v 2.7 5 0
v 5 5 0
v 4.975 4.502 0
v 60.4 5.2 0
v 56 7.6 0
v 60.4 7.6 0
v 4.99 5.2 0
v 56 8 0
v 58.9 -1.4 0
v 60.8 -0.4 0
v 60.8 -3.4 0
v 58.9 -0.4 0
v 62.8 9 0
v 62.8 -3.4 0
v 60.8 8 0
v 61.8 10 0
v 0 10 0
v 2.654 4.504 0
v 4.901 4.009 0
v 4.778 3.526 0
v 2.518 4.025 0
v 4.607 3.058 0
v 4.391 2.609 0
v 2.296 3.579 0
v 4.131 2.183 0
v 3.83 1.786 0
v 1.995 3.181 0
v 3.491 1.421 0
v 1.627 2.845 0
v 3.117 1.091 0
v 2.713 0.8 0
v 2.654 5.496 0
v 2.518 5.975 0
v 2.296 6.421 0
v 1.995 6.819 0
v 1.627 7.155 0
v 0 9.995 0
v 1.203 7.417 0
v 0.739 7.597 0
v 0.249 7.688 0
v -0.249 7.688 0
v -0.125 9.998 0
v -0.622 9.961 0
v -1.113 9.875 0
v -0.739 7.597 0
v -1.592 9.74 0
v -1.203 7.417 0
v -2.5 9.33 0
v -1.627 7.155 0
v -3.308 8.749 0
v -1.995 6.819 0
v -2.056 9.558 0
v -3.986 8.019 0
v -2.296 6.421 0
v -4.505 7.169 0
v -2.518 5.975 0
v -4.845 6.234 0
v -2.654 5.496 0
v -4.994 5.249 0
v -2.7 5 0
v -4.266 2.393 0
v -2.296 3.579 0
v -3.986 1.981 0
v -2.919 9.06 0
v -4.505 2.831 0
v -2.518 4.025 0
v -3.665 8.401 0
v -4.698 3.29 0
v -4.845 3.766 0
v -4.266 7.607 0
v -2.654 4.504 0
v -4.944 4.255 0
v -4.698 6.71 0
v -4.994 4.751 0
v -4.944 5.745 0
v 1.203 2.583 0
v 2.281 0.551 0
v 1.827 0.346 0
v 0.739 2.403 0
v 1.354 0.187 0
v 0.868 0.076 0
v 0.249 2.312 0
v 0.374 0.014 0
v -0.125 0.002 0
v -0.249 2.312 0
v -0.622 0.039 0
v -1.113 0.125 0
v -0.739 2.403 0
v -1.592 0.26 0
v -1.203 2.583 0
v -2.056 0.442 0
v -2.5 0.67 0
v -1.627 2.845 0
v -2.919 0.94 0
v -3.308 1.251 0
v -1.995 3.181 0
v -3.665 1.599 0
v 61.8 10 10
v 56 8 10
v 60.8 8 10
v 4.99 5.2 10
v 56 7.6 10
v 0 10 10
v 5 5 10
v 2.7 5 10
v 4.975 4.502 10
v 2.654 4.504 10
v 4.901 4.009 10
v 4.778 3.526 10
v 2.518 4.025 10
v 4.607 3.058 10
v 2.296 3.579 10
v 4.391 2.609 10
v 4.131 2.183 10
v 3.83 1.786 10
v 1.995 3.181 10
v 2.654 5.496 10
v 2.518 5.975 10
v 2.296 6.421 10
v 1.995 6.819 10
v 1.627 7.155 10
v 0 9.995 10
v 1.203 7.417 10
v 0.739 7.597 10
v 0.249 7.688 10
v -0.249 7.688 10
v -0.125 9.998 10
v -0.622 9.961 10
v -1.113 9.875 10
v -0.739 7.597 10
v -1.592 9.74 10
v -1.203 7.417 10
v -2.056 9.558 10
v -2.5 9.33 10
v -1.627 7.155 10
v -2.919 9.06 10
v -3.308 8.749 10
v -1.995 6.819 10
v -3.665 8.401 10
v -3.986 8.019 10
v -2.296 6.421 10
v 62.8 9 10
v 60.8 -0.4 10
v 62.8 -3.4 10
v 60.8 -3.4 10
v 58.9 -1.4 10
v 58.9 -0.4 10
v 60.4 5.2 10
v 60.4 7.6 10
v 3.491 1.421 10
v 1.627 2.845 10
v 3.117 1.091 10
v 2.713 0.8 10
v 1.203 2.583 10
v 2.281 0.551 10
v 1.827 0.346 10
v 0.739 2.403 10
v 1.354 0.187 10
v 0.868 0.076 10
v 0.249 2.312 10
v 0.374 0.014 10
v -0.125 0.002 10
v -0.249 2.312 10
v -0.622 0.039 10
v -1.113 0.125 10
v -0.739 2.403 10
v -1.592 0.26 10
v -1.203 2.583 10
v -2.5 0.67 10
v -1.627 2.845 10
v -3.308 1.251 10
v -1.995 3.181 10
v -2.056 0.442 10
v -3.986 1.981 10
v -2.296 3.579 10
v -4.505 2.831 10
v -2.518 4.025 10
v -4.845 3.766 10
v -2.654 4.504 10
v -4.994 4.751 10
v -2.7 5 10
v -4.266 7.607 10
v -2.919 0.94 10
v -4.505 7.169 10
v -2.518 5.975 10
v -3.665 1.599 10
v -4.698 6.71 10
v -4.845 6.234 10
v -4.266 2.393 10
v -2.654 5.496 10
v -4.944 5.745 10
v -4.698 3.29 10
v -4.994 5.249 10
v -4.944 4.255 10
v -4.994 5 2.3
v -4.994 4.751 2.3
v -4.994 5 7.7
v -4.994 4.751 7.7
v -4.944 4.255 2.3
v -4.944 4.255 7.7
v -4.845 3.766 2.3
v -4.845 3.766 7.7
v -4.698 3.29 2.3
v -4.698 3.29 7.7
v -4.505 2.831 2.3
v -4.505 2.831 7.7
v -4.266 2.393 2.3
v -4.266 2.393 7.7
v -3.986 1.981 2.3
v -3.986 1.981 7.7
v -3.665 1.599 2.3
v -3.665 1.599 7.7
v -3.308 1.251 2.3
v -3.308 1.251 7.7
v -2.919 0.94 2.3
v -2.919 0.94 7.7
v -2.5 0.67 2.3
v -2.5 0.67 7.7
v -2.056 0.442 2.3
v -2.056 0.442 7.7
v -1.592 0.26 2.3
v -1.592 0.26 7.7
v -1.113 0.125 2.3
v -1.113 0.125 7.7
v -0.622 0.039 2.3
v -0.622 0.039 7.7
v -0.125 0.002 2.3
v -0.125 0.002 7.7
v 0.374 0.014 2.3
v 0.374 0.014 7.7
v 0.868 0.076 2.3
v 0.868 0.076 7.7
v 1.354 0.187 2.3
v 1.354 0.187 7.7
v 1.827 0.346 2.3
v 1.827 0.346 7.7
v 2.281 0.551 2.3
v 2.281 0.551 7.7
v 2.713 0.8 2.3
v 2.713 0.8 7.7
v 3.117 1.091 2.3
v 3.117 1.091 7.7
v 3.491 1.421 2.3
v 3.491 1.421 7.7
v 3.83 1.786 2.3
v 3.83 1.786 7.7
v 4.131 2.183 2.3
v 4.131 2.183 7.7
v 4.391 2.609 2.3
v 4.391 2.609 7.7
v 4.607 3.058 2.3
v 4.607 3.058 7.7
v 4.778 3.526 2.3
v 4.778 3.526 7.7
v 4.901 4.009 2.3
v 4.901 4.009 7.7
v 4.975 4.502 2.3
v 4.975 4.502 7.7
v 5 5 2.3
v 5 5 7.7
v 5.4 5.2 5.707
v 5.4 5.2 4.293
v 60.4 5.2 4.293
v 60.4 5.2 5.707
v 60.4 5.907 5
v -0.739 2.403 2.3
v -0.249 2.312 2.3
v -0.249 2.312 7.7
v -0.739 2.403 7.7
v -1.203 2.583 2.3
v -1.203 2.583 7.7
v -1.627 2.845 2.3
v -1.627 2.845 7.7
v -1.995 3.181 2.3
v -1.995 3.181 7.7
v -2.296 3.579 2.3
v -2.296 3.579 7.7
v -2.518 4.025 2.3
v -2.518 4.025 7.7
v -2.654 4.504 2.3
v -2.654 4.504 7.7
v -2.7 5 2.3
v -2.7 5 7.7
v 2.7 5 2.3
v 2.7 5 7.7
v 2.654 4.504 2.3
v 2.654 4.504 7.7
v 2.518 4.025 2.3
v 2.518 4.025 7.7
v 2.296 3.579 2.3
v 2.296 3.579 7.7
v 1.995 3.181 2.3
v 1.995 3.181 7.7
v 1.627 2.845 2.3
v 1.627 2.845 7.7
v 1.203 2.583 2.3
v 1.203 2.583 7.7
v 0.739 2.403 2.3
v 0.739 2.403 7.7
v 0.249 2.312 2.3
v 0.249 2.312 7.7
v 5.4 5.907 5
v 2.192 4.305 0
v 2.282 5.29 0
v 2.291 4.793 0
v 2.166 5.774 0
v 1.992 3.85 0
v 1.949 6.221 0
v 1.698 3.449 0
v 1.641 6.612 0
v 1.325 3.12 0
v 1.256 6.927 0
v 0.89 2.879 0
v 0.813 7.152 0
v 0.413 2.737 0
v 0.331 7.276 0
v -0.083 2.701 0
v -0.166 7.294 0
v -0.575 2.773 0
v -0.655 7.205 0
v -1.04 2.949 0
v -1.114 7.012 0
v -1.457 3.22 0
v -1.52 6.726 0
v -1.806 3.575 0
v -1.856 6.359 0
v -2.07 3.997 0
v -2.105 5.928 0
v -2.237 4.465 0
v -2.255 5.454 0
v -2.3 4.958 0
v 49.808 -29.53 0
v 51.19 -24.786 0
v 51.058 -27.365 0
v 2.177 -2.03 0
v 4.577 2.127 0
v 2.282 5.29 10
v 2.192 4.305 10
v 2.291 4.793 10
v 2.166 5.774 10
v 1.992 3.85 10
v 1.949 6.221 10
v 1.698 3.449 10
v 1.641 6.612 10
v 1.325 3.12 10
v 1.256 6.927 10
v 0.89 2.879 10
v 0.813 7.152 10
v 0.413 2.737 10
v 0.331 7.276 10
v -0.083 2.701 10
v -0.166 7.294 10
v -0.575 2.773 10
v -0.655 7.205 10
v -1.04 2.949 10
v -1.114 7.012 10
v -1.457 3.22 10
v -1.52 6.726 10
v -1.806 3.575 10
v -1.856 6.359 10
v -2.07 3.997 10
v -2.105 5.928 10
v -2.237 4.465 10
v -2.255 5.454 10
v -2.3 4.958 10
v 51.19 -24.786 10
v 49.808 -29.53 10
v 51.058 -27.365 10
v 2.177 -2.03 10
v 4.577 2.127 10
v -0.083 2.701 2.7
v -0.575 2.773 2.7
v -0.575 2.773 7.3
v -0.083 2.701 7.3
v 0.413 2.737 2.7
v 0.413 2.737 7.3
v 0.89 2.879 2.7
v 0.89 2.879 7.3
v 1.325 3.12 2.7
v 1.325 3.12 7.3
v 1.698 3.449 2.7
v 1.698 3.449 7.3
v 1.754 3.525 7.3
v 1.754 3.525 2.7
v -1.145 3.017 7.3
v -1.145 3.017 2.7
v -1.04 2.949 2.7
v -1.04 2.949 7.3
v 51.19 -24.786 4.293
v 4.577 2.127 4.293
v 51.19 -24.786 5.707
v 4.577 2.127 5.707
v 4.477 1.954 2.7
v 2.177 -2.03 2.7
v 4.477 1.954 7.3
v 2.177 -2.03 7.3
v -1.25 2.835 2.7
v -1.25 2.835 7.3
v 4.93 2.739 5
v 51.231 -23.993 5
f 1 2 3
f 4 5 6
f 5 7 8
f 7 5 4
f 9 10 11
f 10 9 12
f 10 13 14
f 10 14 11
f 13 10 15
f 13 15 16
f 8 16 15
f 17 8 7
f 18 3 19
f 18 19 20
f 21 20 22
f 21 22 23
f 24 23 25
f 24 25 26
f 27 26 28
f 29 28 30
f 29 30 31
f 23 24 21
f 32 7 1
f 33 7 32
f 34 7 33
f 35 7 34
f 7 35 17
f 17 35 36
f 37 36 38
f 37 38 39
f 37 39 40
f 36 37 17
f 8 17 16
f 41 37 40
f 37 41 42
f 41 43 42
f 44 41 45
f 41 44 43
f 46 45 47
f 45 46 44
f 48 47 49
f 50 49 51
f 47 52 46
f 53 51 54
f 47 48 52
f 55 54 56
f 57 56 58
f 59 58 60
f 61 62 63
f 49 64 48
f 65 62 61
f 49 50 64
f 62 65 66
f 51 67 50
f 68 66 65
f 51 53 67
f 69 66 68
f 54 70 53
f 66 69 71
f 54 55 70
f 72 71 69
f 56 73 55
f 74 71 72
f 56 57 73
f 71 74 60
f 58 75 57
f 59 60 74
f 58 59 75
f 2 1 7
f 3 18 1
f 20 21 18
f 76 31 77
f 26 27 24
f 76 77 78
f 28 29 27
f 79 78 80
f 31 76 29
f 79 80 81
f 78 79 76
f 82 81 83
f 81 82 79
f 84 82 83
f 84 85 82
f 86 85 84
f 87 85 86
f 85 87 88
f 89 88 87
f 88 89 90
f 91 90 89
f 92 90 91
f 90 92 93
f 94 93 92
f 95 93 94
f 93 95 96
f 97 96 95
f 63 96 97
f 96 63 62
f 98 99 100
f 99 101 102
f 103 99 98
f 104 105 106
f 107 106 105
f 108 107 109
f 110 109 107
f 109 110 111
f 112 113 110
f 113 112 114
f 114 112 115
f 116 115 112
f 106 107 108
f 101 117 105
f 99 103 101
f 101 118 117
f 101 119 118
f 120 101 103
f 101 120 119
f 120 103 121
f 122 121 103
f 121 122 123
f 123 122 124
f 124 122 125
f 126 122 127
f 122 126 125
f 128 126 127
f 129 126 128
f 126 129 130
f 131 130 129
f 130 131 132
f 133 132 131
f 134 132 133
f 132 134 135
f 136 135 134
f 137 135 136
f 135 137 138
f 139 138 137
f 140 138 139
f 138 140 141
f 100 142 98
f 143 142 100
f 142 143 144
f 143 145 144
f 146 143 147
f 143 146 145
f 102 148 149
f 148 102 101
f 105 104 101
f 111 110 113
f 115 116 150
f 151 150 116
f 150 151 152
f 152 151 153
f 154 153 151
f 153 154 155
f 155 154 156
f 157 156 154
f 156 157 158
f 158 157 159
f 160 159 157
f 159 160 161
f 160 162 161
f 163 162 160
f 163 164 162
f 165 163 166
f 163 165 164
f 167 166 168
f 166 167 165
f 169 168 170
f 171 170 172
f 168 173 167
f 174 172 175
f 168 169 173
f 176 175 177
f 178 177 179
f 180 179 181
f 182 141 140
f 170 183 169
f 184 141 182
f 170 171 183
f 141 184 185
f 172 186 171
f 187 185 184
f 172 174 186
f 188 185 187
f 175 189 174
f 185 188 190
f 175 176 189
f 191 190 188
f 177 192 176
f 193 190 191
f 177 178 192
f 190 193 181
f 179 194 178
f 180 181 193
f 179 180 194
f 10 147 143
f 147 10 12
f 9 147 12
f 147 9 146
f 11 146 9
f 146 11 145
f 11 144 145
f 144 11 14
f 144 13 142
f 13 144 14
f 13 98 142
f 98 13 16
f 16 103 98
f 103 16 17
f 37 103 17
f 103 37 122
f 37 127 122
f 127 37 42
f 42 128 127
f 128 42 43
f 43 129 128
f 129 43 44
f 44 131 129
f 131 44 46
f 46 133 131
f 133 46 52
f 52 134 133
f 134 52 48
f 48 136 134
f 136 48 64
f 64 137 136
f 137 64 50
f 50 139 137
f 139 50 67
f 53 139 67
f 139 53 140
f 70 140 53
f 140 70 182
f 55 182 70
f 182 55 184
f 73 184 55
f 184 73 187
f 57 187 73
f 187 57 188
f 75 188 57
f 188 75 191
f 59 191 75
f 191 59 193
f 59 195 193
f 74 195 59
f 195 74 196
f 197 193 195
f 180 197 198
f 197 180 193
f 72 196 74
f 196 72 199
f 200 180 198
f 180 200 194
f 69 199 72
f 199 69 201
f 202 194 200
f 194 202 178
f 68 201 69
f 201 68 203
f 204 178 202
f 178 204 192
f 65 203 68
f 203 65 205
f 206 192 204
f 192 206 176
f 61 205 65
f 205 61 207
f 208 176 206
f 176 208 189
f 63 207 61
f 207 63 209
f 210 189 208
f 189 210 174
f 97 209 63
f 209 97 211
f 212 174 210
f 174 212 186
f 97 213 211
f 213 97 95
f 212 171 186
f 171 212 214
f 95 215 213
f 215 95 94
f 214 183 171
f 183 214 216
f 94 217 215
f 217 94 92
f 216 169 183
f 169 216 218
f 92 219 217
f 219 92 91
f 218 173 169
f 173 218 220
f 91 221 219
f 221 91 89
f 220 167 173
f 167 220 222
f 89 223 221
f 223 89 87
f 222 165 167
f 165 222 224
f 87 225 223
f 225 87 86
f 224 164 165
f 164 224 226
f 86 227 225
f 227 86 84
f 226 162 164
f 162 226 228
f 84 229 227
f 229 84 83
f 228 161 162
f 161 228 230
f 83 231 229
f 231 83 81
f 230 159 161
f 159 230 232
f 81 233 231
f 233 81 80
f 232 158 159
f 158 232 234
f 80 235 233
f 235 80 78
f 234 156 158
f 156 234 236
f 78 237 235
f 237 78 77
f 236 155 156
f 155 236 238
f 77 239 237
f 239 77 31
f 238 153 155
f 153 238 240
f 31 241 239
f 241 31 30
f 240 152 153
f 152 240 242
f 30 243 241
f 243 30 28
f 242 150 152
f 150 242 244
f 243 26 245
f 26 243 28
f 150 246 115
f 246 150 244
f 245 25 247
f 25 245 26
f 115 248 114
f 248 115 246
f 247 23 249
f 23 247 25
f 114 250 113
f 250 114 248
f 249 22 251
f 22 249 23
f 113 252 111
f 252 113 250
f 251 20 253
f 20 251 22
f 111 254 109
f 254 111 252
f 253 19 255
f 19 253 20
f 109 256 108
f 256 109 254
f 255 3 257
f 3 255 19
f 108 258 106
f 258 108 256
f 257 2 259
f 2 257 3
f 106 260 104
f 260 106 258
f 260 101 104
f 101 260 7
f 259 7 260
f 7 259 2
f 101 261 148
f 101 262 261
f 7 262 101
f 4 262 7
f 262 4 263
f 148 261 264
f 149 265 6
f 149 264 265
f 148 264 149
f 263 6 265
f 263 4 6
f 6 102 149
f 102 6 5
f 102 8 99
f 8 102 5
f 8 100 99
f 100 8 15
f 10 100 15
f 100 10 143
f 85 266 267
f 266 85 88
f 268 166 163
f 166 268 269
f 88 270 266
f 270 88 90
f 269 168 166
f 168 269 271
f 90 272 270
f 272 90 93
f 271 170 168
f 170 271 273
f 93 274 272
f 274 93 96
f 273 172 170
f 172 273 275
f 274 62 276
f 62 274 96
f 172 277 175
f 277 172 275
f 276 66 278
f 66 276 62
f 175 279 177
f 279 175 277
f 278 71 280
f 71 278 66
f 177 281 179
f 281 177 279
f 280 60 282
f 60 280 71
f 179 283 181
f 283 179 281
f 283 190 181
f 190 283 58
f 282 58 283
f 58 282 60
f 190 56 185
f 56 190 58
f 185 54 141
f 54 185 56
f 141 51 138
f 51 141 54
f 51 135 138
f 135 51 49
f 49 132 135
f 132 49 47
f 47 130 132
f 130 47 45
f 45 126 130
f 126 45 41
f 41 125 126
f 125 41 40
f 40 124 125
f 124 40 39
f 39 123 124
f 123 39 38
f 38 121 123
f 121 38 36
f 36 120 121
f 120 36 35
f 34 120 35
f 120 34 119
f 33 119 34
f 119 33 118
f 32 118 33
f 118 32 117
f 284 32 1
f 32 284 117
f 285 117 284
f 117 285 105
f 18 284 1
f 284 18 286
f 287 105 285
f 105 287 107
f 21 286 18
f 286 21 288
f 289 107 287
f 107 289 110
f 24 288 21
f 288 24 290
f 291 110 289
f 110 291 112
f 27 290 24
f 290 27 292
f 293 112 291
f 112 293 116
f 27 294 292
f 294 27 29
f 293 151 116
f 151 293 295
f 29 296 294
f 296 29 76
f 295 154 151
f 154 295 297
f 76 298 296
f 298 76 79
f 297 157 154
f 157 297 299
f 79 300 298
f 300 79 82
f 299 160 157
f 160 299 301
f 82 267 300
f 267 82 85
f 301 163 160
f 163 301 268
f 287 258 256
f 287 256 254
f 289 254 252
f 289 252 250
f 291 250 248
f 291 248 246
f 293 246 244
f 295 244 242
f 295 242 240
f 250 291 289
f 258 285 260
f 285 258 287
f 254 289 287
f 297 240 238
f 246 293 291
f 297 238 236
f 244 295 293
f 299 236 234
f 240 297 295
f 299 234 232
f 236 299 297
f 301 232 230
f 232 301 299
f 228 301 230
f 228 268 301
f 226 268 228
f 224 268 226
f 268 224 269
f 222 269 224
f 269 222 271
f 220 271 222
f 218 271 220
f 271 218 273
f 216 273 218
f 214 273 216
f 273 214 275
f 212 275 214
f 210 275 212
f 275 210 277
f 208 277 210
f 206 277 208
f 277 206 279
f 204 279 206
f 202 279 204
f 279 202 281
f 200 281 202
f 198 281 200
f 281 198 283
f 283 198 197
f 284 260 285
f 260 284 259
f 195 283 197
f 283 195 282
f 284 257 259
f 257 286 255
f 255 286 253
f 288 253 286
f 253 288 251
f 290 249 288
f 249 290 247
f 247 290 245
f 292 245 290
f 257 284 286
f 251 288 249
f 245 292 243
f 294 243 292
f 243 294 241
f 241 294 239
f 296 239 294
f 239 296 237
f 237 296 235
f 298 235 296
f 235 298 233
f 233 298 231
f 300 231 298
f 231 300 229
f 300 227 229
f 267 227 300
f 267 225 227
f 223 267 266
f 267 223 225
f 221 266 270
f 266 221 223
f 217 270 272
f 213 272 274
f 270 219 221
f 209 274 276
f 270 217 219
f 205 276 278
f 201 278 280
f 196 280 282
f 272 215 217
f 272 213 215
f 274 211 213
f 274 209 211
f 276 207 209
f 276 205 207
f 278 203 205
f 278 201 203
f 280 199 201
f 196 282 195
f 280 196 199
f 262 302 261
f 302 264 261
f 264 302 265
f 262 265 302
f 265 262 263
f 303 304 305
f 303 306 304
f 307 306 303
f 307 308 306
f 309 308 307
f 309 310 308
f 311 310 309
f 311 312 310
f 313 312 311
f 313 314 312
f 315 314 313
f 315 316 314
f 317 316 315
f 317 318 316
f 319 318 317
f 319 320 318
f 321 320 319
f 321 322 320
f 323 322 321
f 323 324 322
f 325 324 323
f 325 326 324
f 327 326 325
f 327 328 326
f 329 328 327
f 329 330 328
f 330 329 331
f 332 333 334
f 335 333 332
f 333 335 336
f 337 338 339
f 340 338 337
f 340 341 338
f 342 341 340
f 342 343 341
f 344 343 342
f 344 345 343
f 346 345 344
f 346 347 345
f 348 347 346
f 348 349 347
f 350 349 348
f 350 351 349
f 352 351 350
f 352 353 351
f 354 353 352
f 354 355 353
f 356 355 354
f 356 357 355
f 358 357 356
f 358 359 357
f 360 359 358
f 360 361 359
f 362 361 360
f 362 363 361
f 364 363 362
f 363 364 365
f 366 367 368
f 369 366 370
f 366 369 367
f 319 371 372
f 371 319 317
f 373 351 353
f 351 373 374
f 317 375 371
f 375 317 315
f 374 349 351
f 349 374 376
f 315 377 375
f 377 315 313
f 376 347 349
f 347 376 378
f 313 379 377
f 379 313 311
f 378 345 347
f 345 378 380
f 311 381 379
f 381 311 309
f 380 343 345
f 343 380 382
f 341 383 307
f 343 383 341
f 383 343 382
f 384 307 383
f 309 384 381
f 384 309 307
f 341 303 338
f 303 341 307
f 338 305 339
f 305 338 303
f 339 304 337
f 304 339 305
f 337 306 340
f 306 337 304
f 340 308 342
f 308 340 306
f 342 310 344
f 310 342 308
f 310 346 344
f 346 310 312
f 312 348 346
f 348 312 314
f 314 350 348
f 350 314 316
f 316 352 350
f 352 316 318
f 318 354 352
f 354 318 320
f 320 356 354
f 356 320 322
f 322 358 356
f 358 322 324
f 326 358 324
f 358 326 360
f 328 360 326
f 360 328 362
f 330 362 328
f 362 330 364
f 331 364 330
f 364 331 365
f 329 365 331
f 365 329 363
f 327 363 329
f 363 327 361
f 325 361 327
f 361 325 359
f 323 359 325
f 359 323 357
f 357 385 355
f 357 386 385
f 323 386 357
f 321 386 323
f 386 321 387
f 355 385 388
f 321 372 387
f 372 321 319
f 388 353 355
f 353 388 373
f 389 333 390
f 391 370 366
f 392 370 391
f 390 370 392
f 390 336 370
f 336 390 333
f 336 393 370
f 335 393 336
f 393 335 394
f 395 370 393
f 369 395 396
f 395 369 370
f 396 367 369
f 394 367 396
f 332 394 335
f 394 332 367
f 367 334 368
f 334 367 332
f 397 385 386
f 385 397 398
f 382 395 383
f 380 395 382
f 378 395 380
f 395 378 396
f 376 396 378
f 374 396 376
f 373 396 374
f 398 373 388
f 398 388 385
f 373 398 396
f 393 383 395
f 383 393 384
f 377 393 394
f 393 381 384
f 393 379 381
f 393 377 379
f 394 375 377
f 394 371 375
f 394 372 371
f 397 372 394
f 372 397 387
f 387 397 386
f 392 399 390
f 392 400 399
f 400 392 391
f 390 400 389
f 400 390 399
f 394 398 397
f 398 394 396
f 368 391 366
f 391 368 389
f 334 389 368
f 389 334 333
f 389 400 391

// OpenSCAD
/******************************************************************************
 *
 *  GLOBALS
 *
 ******************************************************************************/


/* [General] */

// Effective (internal) length of the clip
armLength = 55;
// Should not be less than two times latch arm hickness plus movement gap :)
armThickness = 5;
height = 10;
latchArmThickness = 2; // [1:0.1:3]
// Simply just tollerance, must be positive for movement
latchGap = 0.4; // [0.2:0.05:0.8]
pivotGap = 0.4; // [0.2:0.05:0.8]
// Angle (in degrees) for printing area adjustment
initialArmsAngle = 30; // [15:15:90] 
/* [Hidden] */
$fa = 1;
$fs = 0.5;


/******************************************************************************
 *
 *  EXECUTION
 *
 ******************************************************************************/


lockArm();
freeArm();


/***************************************************************************
 *
 *  DIRECT MODULES
 *
 ******************************************************************************/

module lockArm()
{
    difference()
    {
        linear_extrude(height = height, convexity = 8)
            _lockArmPlane();
        translate([-armThickness - 1, -1, height / 4 - pivotGap / 2])
            cube([2 * armThickness + 1, armThickness + 1, height / 2 + pivotGap]);

        translate([armThickness + latchGap, armThickness + latchGap / 2, height / 2 - sqrt(2) / 2])
            rotate([45, 0, 0])
                cube([armLength, 1, 1]);
    }
}

module freeArm()
{
    translate([0, armThickness, 0])
        rotate([0, 0, -initialArmsAngle]) 
            translate([0, -armThickness, 0])
            {
                difference()
                {
                    union()
                    {
                        linear_extrude(height = height, convexity = 8)
                            _freeArmPlane();
                        translate([0, 0, height / 4 + pivotGap / 2])
                            cube([armThickness + pivotGap, armThickness - latchGap, height / 2 - pivotGap]);
                        translate([armThickness + pivotGap, armThickness - latchGap / 2, height / 2 - sqrt(2) / 2])
                            rotate([45, 0, 0])
                                cube([armLength, 1, 1]);
                    }
                    translate([0, 0, -1])
                        linear_extrude(height = height + 2, convexity = 8)
                            polygon([[-1, -1], [armThickness + pivotGap, 0], [0, armThickness / 2]]);

                    translate([0, 0, -1])
                        linear_extrude(height = height + 2, convexity = 8)
                            polygon([
                                [armLength + armThickness + latchGap, armThickness / 2],
                                [armLength + armThickness + latchGap + 1, armThickness / 2],
                                [armLength + armThickness + latchGap, armThickness + sqrt(2)],
                                [armLength + armThickness + latchGap - latchArmThickness, armThickness + sqrt(2)]
                                ], center = true);
                }
            }
}

/******************************************************************************
 *
 *  HELPER AND COMPONENT MODULES
 *
 ******************************************************************************/

module _freeArmPlane()
{
    translate([0, armThickness, 0])
        circle(armThickness / 2 - pivotGap / 2);
    translate([armThickness + pivotGap, 0, 0])
        square([armLength, armThickness - pivotGap / 2]);
}

 module _lockArmPlane()
 {
    union()
    {
        difference()
        {
            union()
            {
                translate([0, armThickness, 0])
                    circle(armThickness);
                translate([0, armThickness + latchGap / 2, 0])
                    square([armLength + armThickness + latchGap, armThickness - latchGap / 2]);
                translate([armLength + armThickness - 2 * latchArmThickness + latchGap, 2 * armThickness - latchArmThickness, 0])
                    square([3 * latchArmThickness + latchGap, latchArmThickness]);
                translate([armLength + armThickness + 2 * latchGap, - latchGap, 0])
                    square([latchArmThickness, 2 * armThickness + latchGap]);
                polygon([
                    [armLength + armThickness + 2 * latchGap + latchArmThickness, -latchGap],
                    [armLength + armThickness + latchGap - latchArmThickness * 0.75, -latchGap],
                    [armLength + armThickness + latchGap - latchArmThickness * 0.75, -latchGap - latchArmThickness / 2],
                    [armLength + armThickness + 2 * latchGap, -latchGap - latchArmThickness * 1.5],
                    [armLength + armThickness + 2 * latchGap + latchArmThickness, -latchGap - latchArmThickness * 1.5]
                    ]);
            }
            translate([0, armThickness, 0])
                circle(armThickness / 2 + pivotGap / 2);
            translate([armLength + armThickness - 2 * latchArmThickness, armThickness * 2 - latchArmThickness - latchGap, 0])
                square([2 * latchArmThickness + latchGap, latchGap]);
            translate([armLength + armThickness + 2 * latchGap + latchArmThickness, armThickness * 2 - latchArmThickness/2, 0])
                rotate([0, 0, 45])
                    square(latchArmThickness);
            
        }    
    }
 }
